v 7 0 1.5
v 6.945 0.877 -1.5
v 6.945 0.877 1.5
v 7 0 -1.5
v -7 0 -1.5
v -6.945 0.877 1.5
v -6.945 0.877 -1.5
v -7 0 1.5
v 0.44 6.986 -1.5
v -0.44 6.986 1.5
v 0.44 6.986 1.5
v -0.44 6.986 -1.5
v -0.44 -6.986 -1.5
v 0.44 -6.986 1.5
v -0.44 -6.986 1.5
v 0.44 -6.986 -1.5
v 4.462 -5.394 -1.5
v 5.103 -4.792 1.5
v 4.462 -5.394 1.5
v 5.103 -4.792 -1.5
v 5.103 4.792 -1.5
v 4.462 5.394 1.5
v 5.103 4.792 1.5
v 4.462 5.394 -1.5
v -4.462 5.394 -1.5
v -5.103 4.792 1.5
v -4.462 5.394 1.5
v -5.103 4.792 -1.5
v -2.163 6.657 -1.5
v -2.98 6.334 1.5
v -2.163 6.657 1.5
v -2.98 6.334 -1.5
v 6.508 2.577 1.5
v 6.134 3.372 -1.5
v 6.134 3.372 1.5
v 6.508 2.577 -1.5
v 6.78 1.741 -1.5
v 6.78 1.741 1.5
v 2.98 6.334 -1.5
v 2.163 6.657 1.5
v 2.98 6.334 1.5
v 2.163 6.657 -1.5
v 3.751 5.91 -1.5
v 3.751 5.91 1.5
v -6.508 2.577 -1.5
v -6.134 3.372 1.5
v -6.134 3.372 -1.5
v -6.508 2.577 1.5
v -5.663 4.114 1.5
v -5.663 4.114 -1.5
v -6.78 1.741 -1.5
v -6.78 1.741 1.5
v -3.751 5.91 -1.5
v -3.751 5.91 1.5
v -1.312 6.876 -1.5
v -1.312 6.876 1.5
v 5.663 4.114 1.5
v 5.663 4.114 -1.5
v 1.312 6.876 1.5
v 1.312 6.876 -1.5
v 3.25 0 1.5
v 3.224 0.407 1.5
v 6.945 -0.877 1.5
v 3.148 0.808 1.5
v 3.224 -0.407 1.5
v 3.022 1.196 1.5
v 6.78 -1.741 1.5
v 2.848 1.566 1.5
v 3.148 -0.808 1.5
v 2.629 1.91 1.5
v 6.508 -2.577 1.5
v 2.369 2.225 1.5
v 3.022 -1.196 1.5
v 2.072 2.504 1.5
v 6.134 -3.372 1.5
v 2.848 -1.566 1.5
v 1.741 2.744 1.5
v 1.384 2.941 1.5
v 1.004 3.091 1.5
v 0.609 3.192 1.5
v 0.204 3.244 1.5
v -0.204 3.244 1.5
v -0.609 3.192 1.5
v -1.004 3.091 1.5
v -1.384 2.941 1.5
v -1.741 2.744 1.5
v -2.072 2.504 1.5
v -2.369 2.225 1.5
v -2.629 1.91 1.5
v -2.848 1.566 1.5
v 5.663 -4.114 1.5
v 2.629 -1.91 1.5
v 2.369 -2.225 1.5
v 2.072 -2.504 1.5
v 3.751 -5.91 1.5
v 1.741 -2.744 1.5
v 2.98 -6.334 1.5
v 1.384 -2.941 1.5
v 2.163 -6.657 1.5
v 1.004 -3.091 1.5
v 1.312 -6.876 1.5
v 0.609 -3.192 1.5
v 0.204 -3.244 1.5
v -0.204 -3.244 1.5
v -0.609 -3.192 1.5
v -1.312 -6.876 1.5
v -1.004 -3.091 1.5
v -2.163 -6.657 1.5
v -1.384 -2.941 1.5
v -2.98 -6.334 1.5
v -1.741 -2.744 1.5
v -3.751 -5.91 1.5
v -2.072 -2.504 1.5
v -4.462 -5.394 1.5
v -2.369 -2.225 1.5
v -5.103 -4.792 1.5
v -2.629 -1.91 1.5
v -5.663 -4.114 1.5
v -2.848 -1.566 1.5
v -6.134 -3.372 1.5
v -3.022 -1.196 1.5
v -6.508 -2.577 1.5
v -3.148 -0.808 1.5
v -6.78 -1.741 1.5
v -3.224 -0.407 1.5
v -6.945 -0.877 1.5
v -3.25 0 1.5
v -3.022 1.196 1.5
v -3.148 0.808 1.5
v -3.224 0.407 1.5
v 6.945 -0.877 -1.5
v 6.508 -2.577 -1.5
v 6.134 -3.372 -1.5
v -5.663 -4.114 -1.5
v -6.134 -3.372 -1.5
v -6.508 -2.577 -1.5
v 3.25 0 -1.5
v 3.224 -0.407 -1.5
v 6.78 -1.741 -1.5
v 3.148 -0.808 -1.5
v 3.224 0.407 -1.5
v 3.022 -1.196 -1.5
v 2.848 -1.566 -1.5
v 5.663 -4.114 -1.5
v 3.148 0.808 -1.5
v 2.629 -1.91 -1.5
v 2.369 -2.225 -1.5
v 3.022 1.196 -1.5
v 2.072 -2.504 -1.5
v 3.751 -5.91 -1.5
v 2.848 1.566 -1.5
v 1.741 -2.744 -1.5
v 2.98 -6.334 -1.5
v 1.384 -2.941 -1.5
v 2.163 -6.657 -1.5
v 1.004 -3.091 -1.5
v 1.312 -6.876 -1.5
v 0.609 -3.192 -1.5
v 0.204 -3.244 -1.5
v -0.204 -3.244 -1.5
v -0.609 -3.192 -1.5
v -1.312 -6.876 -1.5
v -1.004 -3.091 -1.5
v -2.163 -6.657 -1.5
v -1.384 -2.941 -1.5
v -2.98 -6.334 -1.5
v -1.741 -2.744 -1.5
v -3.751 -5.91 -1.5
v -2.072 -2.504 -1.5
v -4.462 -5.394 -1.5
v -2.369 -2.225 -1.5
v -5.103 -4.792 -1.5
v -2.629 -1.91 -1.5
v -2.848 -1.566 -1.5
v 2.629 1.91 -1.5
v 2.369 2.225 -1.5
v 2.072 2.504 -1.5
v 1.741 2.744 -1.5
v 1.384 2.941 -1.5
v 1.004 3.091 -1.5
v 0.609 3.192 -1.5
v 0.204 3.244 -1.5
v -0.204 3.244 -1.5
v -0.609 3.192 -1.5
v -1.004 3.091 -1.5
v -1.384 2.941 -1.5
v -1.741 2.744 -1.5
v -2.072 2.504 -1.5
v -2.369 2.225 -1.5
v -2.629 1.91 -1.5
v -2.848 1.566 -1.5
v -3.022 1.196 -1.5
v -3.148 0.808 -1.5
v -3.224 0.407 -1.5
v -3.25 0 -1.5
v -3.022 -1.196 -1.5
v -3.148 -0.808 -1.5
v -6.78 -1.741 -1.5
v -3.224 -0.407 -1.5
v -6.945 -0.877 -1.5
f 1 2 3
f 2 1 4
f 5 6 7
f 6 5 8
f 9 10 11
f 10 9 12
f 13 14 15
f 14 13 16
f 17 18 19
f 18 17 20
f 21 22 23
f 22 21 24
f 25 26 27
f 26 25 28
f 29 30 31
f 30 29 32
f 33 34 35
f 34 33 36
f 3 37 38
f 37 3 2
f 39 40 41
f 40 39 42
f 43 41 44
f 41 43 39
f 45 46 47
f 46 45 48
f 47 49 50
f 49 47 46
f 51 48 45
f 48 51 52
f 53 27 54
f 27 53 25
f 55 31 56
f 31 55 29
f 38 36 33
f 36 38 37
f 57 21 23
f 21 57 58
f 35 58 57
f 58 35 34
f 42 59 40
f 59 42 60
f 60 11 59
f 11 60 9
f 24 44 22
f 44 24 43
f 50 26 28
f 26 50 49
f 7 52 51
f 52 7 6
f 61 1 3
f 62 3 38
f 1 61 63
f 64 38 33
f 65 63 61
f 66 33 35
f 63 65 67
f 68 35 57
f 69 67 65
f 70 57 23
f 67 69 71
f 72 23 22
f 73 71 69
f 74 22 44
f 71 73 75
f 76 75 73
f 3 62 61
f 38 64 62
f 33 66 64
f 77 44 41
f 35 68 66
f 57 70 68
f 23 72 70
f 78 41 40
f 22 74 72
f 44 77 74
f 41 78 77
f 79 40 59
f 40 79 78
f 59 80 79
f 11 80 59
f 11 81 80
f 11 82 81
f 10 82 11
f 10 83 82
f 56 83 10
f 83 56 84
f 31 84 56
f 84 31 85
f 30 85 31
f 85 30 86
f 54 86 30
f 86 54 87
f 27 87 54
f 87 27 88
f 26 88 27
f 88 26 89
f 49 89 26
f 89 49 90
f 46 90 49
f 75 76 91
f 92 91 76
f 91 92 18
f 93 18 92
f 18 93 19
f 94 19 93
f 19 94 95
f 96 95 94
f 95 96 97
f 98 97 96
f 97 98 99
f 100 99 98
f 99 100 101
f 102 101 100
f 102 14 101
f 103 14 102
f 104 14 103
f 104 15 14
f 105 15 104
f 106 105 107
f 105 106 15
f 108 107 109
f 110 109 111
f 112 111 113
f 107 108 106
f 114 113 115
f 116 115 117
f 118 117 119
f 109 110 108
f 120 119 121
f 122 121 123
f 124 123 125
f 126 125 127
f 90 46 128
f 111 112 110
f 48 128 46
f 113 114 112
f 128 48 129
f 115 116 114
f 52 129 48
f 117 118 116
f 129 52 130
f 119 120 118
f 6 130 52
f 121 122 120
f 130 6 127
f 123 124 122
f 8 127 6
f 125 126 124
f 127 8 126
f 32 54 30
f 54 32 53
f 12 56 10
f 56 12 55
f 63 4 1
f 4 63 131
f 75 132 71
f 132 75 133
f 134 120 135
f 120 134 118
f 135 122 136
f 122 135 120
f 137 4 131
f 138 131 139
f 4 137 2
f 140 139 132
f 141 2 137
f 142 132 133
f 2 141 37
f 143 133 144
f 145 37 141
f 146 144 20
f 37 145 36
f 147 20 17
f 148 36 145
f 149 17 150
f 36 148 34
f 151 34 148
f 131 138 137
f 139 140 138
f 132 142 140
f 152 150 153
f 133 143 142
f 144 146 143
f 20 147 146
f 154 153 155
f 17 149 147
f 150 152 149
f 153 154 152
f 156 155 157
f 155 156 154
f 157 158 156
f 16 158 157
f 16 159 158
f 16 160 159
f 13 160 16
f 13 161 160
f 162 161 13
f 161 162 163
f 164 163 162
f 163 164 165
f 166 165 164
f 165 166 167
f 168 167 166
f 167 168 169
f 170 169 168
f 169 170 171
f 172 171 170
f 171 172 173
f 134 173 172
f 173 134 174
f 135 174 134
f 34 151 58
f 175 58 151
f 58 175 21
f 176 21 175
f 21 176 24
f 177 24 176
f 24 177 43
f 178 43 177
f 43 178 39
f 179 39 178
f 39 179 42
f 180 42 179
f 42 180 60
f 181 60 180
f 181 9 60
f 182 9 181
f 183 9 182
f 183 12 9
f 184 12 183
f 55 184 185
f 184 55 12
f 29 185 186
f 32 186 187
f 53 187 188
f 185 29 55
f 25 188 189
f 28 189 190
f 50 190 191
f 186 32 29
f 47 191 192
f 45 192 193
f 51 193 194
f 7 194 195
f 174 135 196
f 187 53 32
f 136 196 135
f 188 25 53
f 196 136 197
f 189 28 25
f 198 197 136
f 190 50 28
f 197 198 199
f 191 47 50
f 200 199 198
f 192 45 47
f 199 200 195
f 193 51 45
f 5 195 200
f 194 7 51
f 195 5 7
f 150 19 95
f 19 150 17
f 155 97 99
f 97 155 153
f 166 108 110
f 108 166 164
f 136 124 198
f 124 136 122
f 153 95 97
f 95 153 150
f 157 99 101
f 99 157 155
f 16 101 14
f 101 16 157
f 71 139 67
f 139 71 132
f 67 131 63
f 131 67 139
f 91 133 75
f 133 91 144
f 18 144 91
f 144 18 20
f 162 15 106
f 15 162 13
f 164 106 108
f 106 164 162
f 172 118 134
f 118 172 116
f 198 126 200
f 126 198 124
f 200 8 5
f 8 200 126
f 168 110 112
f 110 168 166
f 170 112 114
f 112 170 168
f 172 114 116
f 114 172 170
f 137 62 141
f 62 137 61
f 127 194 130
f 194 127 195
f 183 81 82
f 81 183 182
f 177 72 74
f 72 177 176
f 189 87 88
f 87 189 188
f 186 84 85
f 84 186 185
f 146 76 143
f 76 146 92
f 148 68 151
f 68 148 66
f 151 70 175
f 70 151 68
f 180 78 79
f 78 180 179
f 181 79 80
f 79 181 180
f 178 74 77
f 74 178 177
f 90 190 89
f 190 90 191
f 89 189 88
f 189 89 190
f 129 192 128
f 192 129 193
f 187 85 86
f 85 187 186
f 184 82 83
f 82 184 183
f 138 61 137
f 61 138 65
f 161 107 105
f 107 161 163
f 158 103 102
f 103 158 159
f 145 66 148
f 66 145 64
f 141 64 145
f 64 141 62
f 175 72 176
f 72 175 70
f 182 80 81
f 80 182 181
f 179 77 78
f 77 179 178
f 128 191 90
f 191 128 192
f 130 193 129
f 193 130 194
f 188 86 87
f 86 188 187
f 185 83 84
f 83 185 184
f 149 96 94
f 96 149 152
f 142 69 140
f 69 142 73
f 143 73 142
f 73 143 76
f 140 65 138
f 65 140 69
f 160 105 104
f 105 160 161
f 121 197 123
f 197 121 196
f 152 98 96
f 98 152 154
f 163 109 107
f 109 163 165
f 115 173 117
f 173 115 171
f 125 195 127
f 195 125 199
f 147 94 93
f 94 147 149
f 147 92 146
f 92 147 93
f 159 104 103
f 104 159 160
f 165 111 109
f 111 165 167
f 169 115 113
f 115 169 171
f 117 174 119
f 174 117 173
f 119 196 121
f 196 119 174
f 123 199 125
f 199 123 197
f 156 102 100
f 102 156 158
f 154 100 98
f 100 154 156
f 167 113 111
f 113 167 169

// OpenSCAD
$fn = 50;


difference() {
	union() {
		translate(v = [0, 0, -1.5000000000]) {
			cylinder(h = 3, r = 7.0000000000);
		}
	}
	union() {
		translate(v = [0, 0, -100.0000000000]) {
			cylinder(h = 200, r = 3.2500000000);
		}
	}
}
